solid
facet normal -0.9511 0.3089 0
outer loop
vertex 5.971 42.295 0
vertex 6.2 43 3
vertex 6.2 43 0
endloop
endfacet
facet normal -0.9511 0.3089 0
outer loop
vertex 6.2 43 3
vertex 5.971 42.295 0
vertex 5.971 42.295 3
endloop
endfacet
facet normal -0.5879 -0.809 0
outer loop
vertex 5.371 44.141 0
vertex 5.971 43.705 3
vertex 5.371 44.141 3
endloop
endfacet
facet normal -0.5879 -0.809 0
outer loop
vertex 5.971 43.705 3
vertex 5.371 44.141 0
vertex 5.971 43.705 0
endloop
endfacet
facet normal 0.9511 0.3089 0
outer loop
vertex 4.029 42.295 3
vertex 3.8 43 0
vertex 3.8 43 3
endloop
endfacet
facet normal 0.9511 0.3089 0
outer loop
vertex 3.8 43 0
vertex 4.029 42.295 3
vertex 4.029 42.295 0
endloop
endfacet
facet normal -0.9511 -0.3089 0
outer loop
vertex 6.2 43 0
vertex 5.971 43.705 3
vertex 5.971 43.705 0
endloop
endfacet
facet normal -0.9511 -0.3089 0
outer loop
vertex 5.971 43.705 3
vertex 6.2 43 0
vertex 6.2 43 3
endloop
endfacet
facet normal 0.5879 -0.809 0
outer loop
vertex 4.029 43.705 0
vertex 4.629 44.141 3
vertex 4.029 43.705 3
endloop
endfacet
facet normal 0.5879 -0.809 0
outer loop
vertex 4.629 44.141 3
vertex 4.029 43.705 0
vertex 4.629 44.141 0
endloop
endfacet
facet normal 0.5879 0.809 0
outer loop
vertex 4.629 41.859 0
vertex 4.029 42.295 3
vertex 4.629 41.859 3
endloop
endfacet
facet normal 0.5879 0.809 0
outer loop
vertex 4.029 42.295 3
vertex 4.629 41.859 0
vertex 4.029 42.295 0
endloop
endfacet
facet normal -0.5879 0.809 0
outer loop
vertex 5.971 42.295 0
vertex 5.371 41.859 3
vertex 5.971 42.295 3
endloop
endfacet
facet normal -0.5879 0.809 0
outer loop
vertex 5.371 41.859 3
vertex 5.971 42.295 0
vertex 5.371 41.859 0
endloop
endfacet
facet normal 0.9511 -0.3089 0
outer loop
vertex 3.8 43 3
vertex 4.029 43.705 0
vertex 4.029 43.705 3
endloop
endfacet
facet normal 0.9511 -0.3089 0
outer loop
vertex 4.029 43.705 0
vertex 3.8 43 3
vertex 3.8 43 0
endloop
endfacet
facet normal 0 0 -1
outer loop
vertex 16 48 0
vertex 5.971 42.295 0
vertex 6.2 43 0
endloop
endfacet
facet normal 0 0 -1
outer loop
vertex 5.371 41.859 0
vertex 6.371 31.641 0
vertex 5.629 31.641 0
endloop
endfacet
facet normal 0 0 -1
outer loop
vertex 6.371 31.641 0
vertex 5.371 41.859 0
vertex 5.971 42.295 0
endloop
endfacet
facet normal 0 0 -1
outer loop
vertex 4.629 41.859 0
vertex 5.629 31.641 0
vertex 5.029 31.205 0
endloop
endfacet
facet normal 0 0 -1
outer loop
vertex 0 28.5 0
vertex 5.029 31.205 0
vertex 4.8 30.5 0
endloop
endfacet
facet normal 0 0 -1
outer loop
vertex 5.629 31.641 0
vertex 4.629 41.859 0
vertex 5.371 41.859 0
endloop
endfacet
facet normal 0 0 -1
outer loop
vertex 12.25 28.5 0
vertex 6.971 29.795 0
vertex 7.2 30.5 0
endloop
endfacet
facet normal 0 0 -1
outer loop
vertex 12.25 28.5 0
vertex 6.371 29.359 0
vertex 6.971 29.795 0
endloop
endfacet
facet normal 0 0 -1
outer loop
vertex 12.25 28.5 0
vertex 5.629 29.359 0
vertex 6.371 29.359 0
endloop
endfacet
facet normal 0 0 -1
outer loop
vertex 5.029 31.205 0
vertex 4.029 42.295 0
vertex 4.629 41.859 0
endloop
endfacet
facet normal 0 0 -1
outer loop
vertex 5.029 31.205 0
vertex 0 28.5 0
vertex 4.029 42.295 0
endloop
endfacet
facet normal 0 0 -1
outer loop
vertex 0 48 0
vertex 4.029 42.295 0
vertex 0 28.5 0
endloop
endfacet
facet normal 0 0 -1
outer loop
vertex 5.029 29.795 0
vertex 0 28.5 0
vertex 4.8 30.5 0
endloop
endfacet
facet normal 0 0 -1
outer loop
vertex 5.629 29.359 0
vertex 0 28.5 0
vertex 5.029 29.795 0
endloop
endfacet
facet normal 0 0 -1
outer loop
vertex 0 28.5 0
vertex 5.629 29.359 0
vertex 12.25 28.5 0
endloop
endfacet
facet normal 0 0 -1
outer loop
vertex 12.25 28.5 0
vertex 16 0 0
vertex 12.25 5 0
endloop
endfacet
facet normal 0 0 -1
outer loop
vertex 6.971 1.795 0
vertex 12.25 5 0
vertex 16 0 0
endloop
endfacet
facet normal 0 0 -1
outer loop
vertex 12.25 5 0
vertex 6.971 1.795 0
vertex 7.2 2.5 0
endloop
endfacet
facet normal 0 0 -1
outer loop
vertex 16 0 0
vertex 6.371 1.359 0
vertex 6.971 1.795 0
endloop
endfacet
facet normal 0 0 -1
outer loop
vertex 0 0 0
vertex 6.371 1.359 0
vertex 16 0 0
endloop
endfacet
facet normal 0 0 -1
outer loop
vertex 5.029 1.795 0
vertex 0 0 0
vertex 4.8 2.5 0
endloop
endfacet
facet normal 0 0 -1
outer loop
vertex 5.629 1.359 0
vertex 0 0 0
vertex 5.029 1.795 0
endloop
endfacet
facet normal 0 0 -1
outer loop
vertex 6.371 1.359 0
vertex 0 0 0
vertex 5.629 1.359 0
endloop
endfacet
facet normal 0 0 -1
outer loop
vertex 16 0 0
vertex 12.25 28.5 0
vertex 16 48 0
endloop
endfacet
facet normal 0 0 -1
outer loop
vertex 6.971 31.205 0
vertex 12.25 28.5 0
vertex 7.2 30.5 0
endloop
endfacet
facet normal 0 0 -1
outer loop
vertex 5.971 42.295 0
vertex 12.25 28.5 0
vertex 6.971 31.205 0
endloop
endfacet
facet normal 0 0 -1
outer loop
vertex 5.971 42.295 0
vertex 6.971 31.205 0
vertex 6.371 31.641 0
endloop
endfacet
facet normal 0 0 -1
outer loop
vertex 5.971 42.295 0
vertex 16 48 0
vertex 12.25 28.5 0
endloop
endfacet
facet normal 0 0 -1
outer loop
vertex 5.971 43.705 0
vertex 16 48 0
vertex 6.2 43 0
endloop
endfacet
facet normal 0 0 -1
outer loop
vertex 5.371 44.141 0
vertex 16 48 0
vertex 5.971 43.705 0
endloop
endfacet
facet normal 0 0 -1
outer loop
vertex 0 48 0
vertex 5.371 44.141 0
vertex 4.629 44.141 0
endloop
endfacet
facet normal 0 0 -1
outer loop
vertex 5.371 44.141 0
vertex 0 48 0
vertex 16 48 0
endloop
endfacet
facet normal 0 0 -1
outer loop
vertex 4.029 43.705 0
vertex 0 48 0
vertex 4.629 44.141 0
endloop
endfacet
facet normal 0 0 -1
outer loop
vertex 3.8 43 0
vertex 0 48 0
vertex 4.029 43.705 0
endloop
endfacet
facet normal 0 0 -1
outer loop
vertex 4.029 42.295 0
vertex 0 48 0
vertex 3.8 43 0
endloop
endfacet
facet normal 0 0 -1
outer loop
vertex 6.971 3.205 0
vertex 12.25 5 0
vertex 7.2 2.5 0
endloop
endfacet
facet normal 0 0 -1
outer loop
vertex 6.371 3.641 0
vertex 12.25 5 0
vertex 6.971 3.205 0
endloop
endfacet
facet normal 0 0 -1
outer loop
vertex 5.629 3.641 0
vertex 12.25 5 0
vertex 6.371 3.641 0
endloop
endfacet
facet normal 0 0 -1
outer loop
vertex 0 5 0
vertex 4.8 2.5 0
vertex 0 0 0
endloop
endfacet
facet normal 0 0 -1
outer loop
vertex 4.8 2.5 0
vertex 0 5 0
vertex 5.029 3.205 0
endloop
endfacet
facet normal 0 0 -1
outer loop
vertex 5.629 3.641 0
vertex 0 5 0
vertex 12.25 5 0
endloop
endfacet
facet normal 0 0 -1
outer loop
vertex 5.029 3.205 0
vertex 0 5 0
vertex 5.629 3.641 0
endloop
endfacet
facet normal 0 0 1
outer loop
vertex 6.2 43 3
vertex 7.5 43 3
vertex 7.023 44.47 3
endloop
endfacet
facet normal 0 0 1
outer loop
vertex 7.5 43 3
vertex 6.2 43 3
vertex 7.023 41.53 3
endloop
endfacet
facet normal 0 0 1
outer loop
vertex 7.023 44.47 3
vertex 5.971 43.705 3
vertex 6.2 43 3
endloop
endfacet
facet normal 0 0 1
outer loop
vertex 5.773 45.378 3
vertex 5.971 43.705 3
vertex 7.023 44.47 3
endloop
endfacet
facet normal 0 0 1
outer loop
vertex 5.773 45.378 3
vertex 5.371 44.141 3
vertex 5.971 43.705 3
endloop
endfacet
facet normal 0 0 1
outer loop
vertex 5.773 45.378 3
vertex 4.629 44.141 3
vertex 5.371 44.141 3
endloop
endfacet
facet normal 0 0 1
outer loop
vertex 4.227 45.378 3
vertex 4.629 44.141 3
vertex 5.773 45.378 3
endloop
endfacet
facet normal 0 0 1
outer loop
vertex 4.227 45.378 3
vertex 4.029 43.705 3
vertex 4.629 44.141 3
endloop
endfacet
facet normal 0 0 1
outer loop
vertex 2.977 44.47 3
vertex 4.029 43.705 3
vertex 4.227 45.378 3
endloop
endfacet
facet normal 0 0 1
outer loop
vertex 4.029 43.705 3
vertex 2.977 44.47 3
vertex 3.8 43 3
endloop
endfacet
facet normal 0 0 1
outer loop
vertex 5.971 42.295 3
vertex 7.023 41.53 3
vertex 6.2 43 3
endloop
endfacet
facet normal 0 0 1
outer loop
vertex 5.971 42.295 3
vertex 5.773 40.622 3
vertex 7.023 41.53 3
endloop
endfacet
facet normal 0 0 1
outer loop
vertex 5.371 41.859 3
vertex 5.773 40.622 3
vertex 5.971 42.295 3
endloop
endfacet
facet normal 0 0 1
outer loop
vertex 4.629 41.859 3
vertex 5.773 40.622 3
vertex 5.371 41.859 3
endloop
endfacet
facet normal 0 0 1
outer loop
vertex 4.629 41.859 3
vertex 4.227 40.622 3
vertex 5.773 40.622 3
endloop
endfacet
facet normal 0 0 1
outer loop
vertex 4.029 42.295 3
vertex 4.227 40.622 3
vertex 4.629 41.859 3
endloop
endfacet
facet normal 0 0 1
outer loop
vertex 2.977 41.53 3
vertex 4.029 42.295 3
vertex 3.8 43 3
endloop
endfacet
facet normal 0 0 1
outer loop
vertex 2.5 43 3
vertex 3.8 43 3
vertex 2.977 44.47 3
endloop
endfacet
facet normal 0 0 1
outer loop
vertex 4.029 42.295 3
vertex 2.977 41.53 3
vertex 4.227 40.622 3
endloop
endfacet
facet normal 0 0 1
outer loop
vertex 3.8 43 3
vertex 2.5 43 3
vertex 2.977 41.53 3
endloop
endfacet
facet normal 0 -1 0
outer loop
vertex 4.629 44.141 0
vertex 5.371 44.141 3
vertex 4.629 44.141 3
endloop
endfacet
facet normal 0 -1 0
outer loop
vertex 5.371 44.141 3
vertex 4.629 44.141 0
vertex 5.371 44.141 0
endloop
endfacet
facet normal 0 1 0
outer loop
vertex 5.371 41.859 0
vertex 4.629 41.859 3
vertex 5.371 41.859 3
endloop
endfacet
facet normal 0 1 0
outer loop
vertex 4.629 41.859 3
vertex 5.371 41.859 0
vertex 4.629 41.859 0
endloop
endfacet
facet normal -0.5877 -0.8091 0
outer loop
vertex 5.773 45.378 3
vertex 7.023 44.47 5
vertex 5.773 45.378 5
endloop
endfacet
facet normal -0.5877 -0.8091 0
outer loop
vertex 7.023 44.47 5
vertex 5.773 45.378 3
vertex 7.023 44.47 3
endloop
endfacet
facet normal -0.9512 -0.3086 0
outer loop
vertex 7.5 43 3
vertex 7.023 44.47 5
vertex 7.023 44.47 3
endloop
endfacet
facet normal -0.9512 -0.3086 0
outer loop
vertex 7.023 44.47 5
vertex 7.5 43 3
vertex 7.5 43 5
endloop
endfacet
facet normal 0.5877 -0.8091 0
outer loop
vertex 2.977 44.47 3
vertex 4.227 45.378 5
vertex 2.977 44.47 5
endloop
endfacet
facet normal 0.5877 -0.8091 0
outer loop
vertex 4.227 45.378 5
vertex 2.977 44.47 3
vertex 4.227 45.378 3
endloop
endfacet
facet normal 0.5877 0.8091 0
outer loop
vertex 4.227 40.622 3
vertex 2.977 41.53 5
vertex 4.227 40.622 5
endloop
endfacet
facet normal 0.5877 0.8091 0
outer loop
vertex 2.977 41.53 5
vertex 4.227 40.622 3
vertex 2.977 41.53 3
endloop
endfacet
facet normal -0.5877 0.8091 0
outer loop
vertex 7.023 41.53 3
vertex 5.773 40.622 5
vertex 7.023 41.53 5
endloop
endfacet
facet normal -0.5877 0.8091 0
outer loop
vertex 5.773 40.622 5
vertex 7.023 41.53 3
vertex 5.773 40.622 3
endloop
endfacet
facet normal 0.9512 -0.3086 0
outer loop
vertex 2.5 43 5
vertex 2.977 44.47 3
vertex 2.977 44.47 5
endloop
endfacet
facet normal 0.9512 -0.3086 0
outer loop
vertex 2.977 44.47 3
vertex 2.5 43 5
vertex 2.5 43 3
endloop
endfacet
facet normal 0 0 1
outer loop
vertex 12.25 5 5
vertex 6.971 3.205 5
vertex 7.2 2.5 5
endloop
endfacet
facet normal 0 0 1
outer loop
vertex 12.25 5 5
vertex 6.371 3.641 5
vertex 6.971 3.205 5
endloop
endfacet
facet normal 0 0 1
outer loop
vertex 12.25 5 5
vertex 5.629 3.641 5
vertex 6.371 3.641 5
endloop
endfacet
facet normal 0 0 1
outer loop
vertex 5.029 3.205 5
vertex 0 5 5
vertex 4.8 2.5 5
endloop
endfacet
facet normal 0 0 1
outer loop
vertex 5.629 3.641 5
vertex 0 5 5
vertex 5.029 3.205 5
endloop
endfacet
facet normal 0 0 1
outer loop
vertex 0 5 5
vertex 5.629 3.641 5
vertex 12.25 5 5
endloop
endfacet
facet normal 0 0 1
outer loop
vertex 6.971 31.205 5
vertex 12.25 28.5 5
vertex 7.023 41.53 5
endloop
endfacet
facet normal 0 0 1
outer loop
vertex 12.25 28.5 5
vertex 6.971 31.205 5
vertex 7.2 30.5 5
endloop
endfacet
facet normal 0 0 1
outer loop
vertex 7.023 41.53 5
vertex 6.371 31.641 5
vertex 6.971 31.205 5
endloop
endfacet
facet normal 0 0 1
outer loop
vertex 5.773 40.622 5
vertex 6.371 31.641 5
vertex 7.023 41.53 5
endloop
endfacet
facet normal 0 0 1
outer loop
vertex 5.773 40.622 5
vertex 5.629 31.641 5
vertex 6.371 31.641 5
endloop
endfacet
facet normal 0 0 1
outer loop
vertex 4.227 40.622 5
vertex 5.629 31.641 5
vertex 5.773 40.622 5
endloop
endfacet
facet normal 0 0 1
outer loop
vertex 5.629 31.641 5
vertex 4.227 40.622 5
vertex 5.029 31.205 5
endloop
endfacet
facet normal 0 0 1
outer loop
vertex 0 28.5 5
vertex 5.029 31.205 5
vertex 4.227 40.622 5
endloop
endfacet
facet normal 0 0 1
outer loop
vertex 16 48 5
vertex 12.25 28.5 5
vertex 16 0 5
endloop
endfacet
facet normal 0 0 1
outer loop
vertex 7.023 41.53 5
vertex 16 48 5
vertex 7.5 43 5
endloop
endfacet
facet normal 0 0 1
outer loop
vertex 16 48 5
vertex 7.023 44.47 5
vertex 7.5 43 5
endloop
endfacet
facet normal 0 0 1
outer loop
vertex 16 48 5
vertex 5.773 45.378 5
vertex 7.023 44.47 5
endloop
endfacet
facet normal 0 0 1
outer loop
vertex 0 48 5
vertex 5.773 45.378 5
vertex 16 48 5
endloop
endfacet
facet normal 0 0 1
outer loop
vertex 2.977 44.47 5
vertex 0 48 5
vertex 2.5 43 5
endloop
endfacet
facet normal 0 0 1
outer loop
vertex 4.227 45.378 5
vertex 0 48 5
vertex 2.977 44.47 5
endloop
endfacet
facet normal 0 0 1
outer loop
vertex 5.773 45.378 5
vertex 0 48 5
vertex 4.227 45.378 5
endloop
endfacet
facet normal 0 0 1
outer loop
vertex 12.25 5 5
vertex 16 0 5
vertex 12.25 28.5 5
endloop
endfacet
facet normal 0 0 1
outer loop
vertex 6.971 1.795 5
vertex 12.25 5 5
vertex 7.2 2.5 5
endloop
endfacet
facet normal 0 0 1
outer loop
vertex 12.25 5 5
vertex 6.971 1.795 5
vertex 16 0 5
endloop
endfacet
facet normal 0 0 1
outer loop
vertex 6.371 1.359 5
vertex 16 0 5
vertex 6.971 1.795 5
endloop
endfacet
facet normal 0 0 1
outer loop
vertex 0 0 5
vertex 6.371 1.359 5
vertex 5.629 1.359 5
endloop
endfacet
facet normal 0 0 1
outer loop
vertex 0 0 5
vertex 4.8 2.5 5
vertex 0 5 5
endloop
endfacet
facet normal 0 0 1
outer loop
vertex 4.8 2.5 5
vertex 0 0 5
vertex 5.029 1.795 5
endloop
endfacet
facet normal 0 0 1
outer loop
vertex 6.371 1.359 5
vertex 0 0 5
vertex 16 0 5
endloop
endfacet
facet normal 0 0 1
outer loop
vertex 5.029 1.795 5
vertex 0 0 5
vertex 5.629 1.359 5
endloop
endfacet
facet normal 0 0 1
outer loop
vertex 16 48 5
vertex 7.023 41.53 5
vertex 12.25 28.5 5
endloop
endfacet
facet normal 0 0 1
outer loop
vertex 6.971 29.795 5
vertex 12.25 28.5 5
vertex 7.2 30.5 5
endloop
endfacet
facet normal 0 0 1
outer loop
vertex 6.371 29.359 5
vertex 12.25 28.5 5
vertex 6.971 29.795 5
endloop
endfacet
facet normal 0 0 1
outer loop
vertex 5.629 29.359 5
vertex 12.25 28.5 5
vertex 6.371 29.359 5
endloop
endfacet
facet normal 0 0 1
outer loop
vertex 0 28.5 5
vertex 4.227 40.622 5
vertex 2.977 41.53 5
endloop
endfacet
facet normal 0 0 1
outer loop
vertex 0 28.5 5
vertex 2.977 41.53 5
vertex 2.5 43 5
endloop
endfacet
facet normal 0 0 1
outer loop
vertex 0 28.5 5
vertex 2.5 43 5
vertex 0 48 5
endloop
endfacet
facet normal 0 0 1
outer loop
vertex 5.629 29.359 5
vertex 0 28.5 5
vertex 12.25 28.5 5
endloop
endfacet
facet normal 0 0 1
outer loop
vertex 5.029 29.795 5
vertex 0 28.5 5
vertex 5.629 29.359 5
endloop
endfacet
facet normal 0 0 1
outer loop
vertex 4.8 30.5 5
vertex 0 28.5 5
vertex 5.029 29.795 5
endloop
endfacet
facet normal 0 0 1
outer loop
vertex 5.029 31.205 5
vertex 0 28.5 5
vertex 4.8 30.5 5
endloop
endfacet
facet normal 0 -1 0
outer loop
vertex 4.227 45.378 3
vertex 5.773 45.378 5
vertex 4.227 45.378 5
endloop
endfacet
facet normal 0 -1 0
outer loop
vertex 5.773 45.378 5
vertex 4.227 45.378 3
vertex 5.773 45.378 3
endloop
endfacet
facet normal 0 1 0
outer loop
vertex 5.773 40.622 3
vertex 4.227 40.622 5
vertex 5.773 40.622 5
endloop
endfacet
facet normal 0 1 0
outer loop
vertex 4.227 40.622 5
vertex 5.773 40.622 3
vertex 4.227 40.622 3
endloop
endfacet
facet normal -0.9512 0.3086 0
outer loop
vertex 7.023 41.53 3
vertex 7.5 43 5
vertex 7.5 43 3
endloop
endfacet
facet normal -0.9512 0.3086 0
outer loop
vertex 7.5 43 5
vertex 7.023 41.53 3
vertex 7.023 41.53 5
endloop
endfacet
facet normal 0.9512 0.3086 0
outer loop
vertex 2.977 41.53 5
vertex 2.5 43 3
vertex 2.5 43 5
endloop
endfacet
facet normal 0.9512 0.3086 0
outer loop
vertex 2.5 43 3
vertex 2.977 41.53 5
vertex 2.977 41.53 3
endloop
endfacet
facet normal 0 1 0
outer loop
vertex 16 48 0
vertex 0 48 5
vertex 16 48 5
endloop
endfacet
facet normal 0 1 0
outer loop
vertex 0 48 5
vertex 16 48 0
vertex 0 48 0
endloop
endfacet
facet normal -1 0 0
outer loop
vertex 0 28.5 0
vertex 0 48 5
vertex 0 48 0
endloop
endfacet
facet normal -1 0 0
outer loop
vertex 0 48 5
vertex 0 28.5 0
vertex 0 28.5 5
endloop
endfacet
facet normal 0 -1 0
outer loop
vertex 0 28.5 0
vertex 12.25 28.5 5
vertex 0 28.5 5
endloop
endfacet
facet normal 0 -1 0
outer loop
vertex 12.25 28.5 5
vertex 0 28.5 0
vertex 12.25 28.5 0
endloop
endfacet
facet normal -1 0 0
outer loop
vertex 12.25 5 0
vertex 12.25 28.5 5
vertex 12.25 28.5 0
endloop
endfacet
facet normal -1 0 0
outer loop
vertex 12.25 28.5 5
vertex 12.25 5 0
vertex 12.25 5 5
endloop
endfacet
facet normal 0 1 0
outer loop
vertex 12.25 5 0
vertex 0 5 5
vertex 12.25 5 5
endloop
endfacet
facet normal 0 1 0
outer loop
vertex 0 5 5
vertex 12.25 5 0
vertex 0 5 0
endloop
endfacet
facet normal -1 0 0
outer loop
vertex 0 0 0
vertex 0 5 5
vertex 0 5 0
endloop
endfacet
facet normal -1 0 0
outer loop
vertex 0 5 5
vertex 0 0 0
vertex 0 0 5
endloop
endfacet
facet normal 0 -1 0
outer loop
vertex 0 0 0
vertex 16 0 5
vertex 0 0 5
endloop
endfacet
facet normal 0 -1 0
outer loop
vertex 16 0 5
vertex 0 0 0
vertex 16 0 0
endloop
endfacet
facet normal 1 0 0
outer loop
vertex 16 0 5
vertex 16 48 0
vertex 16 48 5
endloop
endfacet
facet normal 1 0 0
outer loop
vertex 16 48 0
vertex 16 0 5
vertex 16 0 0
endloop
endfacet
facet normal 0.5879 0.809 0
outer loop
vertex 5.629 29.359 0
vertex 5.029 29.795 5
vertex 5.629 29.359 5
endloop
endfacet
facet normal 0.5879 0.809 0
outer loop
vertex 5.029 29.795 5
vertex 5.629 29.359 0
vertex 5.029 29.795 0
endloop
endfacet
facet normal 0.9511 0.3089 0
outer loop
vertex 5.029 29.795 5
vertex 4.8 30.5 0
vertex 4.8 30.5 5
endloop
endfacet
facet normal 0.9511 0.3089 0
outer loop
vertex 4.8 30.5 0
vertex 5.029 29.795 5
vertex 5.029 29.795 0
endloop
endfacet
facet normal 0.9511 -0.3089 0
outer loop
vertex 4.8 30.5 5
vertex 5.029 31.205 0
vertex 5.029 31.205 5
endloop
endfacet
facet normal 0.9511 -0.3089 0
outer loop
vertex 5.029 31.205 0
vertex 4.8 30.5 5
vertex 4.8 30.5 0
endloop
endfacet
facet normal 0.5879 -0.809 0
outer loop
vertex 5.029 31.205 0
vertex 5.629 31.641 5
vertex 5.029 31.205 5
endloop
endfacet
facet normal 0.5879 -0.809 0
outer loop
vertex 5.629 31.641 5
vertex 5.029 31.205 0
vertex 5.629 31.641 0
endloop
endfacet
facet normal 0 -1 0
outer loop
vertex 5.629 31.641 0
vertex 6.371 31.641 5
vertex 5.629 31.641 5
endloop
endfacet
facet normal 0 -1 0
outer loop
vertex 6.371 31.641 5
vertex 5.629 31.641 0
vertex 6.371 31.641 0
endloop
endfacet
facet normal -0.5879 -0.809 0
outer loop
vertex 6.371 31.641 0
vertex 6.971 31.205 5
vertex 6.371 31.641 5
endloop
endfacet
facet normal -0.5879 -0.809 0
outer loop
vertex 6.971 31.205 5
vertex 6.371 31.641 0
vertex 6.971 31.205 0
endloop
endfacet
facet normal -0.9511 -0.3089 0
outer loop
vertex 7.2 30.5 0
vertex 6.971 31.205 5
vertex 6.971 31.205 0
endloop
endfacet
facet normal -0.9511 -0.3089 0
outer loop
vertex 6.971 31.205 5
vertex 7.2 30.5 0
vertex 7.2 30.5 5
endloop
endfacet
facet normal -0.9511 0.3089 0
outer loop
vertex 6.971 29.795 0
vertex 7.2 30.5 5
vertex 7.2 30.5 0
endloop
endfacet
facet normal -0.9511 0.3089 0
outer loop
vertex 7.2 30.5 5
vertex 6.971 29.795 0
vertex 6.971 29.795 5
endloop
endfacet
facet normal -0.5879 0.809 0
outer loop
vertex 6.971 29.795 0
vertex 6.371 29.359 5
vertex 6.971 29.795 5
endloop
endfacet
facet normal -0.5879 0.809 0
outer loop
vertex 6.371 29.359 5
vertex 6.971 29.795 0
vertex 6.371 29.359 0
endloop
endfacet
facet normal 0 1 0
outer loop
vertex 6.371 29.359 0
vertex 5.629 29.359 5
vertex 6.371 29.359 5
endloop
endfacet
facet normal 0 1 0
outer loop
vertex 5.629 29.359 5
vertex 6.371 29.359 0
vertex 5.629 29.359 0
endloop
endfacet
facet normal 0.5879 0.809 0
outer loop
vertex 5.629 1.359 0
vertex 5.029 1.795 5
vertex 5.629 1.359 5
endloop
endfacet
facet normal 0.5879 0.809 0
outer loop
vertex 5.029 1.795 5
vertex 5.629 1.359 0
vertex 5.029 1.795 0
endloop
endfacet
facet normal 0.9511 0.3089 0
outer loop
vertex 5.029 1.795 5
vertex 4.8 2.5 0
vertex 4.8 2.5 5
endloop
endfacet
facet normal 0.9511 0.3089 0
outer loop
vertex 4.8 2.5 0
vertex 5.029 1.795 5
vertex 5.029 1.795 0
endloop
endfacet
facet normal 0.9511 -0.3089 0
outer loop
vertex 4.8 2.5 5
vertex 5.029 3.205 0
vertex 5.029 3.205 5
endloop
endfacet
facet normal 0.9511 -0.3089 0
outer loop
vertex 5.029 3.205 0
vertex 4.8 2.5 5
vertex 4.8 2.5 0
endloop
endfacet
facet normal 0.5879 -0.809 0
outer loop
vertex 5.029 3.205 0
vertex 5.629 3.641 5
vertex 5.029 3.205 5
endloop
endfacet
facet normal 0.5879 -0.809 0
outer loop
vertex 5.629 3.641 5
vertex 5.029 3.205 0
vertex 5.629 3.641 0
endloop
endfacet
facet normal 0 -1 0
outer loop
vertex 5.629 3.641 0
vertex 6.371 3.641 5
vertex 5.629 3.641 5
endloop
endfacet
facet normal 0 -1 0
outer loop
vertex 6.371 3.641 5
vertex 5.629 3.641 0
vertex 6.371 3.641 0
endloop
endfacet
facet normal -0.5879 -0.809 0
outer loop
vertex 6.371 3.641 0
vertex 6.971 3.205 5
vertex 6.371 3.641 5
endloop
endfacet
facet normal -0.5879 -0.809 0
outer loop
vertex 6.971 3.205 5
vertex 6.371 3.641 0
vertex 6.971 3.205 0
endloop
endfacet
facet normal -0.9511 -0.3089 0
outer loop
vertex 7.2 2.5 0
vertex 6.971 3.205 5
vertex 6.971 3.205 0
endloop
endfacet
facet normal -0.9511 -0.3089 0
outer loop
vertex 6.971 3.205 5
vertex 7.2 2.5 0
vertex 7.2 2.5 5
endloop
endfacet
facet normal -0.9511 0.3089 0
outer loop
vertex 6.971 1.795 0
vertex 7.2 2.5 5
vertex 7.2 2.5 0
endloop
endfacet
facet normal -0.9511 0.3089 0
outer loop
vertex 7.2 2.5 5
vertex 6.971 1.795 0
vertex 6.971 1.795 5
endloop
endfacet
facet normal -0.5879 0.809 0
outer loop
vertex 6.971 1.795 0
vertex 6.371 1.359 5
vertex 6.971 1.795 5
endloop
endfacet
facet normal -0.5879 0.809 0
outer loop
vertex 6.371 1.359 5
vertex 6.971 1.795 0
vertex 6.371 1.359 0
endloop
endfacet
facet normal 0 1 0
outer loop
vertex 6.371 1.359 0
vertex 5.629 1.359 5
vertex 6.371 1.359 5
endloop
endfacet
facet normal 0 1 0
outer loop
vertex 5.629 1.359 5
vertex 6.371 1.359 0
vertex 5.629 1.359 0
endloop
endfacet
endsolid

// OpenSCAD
//////////////////////////
// MOTOR - HOLDER

module screws() {

    radius = 1.2;
    distance = 28;

    translate([0,0])
        circle(r=radius, $fn=10);
    translate([0,distance])
        circle(r=radius, $fn=10);
}

module body() {

    width = 12.5;
    length = 23.5;

    translate([-width/2, 2.5])
        square([width, length]);
}

module motor() {
    screws();
    body();
}

//////////////////////////
// LEG

module leg() {
    thickness = 5;
    length = 48;
    width = 16;

    linear_extrude(height=thickness)
        difference() {
            square([width, length]);
            translate([6, 2.5])
                motor();
        }
}

//////////////////////////
// SPIN SHAFT

module spin_shaft() {
    distance = 43;
    small_radius = 1.2;
    large_radius = 2.5;
    small_depth = 3;
    large_depth = 2;

    translate([5,distance,0])
        linear_extrude(height=small_depth)
            circle(r=small_radius, $fn=10);
    translate([5,distance,small_depth])
        linear_extrude(height=large_depth)
            circle(r=large_radius, $fn=10);
}

//////////////////////////
// RENDER

difference() {
    leg();
    spin_shaft();
}
